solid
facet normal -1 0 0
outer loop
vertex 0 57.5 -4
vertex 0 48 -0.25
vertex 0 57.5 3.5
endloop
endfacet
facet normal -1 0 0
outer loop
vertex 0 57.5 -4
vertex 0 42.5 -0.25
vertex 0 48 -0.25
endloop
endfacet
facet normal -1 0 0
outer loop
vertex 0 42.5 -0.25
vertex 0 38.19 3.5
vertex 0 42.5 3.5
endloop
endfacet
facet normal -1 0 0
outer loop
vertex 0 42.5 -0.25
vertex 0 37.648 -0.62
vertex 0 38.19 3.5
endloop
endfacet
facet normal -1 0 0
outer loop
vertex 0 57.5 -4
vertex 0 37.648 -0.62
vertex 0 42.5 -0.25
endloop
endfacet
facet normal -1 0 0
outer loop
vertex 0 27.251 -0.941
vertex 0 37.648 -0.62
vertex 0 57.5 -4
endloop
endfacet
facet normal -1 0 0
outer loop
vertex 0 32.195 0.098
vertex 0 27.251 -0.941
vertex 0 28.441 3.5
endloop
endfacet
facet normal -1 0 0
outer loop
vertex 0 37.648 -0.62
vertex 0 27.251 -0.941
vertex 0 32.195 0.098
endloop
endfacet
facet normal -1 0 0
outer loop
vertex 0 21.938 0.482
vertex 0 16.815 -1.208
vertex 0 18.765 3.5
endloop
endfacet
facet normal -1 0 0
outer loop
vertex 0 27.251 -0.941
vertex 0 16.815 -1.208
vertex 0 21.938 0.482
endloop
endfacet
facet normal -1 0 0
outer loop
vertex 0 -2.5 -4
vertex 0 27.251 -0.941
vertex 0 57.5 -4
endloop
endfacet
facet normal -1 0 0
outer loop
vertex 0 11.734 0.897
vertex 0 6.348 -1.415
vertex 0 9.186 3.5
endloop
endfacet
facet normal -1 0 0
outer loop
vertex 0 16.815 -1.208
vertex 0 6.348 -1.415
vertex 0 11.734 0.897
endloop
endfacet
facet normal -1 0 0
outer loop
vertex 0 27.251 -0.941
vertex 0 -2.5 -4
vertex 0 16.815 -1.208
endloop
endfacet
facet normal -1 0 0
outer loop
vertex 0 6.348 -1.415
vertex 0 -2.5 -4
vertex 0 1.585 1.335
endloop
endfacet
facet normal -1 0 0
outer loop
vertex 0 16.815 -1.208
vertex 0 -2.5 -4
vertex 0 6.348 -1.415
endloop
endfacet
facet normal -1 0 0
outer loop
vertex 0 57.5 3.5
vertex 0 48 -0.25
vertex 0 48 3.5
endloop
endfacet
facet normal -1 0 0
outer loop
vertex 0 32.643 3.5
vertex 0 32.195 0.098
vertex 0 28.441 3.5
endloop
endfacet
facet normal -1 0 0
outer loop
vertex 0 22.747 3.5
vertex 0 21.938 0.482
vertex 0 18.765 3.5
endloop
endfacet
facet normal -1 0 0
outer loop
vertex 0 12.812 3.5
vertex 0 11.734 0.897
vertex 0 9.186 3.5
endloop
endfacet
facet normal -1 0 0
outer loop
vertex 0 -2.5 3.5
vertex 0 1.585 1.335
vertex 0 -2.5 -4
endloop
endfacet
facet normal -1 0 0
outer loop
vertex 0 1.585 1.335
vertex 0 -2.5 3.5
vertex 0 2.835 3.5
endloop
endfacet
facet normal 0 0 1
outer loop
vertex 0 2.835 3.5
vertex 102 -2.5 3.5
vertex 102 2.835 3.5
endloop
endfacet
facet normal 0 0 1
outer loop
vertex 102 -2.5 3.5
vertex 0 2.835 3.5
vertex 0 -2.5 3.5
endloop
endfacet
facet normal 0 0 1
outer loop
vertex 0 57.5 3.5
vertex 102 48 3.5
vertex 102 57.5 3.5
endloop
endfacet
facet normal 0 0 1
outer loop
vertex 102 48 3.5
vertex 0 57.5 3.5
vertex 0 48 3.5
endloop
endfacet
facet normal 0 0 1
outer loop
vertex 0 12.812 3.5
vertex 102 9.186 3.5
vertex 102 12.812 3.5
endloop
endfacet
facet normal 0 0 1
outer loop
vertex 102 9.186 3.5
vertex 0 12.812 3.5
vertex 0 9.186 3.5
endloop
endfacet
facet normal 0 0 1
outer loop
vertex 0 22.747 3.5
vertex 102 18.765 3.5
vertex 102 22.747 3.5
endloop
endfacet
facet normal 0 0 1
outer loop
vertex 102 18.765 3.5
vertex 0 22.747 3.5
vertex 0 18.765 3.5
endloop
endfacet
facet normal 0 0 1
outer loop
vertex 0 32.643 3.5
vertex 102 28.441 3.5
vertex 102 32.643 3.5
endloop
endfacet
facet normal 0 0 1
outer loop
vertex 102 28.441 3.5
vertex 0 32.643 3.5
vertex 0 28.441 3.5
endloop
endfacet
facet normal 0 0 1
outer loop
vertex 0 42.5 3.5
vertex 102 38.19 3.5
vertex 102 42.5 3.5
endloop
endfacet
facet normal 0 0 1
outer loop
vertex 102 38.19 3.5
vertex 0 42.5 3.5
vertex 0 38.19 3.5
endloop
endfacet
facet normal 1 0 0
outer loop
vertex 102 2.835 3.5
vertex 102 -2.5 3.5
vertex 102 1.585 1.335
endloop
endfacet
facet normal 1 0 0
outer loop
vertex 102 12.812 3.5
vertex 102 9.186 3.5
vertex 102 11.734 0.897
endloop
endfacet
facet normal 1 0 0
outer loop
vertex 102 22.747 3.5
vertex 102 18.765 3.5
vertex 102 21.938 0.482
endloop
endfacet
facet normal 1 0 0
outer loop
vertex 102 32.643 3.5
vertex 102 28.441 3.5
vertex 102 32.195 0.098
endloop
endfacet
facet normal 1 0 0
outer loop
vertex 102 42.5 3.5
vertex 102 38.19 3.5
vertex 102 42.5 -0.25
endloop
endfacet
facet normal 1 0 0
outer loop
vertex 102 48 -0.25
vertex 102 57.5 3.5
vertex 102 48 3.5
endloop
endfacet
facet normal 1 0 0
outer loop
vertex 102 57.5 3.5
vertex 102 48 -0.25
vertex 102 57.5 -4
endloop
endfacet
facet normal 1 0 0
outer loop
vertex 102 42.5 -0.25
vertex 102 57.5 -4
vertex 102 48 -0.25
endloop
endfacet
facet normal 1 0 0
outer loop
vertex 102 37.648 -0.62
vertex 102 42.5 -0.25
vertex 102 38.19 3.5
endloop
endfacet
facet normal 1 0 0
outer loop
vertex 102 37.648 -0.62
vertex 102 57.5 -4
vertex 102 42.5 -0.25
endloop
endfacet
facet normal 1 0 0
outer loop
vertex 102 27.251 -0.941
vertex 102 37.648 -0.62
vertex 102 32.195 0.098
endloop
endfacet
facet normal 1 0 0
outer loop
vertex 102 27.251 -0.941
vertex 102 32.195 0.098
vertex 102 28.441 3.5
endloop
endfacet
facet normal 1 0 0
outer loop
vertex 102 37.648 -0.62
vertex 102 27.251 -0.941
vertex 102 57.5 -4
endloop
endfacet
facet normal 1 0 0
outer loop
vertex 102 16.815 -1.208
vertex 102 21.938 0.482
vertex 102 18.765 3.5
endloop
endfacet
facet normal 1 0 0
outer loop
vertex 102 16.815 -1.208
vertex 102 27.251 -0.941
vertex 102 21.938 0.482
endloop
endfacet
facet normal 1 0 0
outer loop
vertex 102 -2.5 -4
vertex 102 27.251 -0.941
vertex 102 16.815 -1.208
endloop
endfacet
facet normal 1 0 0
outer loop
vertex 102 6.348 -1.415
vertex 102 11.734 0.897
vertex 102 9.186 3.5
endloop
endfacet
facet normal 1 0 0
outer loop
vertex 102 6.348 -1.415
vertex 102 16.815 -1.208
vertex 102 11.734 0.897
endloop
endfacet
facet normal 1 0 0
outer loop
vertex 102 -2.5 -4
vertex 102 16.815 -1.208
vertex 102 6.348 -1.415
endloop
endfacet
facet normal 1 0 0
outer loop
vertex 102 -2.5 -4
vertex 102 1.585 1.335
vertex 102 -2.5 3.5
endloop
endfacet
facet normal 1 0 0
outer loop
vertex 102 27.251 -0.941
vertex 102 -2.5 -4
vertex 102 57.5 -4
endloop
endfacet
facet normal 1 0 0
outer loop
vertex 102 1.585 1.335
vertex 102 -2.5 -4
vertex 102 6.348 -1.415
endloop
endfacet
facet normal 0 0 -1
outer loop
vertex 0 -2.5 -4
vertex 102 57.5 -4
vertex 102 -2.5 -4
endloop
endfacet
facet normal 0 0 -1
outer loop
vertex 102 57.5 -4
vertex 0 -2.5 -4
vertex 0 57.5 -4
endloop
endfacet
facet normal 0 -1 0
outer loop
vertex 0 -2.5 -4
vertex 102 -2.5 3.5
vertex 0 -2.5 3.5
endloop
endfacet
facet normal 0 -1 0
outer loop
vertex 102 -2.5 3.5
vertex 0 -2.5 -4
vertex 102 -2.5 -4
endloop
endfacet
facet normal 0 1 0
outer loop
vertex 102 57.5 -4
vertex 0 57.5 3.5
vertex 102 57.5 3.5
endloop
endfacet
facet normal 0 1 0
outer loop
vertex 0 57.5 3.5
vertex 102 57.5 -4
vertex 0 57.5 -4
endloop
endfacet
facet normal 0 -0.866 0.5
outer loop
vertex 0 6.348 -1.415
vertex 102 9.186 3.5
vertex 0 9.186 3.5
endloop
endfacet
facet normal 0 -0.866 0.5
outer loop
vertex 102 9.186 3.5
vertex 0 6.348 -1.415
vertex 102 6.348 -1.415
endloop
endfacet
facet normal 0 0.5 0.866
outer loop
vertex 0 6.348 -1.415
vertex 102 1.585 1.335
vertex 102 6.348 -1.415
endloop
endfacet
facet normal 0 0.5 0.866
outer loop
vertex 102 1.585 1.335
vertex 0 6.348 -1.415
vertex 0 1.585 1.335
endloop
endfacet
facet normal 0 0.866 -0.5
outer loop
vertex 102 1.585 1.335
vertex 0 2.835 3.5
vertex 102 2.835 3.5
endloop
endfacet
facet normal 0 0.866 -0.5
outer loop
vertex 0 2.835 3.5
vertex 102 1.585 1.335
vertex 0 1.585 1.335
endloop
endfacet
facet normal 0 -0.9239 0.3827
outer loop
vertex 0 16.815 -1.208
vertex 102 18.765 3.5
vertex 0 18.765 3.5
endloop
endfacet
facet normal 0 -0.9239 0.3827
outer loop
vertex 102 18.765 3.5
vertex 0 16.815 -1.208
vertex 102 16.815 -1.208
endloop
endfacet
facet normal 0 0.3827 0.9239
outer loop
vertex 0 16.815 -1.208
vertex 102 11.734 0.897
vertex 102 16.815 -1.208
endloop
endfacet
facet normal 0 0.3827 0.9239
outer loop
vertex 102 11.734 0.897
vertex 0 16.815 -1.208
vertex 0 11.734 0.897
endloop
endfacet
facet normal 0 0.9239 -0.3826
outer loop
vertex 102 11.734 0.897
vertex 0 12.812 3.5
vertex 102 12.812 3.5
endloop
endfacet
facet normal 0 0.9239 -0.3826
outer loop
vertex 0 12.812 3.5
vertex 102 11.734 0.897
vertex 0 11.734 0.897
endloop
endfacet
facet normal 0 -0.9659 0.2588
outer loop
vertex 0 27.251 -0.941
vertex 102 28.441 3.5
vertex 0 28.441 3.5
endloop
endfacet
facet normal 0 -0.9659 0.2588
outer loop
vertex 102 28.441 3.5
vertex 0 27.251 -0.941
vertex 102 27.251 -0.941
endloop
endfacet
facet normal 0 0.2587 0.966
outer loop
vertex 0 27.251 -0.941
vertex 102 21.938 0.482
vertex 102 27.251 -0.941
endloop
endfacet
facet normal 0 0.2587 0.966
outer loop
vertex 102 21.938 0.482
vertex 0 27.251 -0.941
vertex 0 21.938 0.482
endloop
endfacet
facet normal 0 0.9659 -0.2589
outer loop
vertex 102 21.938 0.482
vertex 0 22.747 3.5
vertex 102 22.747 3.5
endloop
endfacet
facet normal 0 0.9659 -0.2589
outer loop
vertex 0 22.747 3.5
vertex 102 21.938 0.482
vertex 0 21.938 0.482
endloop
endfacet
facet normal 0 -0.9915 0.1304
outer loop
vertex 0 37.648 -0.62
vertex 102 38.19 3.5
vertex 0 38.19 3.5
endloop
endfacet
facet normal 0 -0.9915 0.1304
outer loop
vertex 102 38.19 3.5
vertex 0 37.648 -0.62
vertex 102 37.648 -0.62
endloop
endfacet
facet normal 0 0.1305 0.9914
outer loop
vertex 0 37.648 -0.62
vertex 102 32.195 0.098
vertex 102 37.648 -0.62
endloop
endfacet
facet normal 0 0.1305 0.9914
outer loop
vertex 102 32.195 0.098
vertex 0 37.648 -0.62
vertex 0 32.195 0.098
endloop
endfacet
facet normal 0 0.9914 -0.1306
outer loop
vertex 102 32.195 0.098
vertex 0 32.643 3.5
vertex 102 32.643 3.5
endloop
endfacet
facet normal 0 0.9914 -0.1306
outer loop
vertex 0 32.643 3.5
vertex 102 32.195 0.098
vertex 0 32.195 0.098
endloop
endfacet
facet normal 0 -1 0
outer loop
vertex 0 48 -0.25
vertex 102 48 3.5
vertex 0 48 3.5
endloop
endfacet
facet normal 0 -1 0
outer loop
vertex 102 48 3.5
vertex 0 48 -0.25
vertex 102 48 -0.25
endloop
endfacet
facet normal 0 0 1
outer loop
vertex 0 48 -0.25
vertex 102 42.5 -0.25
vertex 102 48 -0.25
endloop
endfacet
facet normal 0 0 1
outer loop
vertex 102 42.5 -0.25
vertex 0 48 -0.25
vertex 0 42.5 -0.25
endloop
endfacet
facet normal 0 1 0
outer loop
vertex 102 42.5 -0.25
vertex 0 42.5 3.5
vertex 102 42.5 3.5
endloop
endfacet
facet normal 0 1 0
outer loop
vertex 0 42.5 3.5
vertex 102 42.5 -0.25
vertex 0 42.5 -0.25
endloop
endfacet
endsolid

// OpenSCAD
difference(){
    translate(v=[0, -2.5, -4.0]){
        cube(size=[101.99999999999999, 60.0, 7.5]);
    };
    translate(v=[-0.01, 5.0, 2.25]){
        rotate(a=[-30.0, 0, 0]){
            translate(v=[0, -2.5, -2.5]){
                cube(size=[102.01999999999998, 5.5, 10.0]);
            };
        };
    };
    translate(v=[-0.01, 15.0, 2.25]){
        rotate(a=[-22.5, 0, 0]){
            translate(v=[0, -2.5, -2.5]){
                cube(size=[102.01999999999998, 5.5, 10.0]);
            };
        };
    };
    translate(v=[-0.01, 25.0, 2.25]){
        rotate(a=[-15.0, 0, 0]){
            translate(v=[0, -2.5, -2.5]){
                cube(size=[102.01999999999998, 5.5, 10.0]);
            };
        };
    };
    translate(v=[-0.01, 35.0, 2.25]){
        rotate(a=[-7.5, 0, 0]){
            translate(v=[0, -2.5, -2.5]){
                cube(size=[102.01999999999998, 5.5, 10.0]);
            };
        };
    };
    translate(v=[-0.01, 45.0, 2.25]){
        rotate(a=[0.0, 0, 0]){
            translate(v=[0, -2.5, -2.5]){
                cube(size=[102.01999999999998, 5.5, 10.0]);
            };
        };
    };
};
